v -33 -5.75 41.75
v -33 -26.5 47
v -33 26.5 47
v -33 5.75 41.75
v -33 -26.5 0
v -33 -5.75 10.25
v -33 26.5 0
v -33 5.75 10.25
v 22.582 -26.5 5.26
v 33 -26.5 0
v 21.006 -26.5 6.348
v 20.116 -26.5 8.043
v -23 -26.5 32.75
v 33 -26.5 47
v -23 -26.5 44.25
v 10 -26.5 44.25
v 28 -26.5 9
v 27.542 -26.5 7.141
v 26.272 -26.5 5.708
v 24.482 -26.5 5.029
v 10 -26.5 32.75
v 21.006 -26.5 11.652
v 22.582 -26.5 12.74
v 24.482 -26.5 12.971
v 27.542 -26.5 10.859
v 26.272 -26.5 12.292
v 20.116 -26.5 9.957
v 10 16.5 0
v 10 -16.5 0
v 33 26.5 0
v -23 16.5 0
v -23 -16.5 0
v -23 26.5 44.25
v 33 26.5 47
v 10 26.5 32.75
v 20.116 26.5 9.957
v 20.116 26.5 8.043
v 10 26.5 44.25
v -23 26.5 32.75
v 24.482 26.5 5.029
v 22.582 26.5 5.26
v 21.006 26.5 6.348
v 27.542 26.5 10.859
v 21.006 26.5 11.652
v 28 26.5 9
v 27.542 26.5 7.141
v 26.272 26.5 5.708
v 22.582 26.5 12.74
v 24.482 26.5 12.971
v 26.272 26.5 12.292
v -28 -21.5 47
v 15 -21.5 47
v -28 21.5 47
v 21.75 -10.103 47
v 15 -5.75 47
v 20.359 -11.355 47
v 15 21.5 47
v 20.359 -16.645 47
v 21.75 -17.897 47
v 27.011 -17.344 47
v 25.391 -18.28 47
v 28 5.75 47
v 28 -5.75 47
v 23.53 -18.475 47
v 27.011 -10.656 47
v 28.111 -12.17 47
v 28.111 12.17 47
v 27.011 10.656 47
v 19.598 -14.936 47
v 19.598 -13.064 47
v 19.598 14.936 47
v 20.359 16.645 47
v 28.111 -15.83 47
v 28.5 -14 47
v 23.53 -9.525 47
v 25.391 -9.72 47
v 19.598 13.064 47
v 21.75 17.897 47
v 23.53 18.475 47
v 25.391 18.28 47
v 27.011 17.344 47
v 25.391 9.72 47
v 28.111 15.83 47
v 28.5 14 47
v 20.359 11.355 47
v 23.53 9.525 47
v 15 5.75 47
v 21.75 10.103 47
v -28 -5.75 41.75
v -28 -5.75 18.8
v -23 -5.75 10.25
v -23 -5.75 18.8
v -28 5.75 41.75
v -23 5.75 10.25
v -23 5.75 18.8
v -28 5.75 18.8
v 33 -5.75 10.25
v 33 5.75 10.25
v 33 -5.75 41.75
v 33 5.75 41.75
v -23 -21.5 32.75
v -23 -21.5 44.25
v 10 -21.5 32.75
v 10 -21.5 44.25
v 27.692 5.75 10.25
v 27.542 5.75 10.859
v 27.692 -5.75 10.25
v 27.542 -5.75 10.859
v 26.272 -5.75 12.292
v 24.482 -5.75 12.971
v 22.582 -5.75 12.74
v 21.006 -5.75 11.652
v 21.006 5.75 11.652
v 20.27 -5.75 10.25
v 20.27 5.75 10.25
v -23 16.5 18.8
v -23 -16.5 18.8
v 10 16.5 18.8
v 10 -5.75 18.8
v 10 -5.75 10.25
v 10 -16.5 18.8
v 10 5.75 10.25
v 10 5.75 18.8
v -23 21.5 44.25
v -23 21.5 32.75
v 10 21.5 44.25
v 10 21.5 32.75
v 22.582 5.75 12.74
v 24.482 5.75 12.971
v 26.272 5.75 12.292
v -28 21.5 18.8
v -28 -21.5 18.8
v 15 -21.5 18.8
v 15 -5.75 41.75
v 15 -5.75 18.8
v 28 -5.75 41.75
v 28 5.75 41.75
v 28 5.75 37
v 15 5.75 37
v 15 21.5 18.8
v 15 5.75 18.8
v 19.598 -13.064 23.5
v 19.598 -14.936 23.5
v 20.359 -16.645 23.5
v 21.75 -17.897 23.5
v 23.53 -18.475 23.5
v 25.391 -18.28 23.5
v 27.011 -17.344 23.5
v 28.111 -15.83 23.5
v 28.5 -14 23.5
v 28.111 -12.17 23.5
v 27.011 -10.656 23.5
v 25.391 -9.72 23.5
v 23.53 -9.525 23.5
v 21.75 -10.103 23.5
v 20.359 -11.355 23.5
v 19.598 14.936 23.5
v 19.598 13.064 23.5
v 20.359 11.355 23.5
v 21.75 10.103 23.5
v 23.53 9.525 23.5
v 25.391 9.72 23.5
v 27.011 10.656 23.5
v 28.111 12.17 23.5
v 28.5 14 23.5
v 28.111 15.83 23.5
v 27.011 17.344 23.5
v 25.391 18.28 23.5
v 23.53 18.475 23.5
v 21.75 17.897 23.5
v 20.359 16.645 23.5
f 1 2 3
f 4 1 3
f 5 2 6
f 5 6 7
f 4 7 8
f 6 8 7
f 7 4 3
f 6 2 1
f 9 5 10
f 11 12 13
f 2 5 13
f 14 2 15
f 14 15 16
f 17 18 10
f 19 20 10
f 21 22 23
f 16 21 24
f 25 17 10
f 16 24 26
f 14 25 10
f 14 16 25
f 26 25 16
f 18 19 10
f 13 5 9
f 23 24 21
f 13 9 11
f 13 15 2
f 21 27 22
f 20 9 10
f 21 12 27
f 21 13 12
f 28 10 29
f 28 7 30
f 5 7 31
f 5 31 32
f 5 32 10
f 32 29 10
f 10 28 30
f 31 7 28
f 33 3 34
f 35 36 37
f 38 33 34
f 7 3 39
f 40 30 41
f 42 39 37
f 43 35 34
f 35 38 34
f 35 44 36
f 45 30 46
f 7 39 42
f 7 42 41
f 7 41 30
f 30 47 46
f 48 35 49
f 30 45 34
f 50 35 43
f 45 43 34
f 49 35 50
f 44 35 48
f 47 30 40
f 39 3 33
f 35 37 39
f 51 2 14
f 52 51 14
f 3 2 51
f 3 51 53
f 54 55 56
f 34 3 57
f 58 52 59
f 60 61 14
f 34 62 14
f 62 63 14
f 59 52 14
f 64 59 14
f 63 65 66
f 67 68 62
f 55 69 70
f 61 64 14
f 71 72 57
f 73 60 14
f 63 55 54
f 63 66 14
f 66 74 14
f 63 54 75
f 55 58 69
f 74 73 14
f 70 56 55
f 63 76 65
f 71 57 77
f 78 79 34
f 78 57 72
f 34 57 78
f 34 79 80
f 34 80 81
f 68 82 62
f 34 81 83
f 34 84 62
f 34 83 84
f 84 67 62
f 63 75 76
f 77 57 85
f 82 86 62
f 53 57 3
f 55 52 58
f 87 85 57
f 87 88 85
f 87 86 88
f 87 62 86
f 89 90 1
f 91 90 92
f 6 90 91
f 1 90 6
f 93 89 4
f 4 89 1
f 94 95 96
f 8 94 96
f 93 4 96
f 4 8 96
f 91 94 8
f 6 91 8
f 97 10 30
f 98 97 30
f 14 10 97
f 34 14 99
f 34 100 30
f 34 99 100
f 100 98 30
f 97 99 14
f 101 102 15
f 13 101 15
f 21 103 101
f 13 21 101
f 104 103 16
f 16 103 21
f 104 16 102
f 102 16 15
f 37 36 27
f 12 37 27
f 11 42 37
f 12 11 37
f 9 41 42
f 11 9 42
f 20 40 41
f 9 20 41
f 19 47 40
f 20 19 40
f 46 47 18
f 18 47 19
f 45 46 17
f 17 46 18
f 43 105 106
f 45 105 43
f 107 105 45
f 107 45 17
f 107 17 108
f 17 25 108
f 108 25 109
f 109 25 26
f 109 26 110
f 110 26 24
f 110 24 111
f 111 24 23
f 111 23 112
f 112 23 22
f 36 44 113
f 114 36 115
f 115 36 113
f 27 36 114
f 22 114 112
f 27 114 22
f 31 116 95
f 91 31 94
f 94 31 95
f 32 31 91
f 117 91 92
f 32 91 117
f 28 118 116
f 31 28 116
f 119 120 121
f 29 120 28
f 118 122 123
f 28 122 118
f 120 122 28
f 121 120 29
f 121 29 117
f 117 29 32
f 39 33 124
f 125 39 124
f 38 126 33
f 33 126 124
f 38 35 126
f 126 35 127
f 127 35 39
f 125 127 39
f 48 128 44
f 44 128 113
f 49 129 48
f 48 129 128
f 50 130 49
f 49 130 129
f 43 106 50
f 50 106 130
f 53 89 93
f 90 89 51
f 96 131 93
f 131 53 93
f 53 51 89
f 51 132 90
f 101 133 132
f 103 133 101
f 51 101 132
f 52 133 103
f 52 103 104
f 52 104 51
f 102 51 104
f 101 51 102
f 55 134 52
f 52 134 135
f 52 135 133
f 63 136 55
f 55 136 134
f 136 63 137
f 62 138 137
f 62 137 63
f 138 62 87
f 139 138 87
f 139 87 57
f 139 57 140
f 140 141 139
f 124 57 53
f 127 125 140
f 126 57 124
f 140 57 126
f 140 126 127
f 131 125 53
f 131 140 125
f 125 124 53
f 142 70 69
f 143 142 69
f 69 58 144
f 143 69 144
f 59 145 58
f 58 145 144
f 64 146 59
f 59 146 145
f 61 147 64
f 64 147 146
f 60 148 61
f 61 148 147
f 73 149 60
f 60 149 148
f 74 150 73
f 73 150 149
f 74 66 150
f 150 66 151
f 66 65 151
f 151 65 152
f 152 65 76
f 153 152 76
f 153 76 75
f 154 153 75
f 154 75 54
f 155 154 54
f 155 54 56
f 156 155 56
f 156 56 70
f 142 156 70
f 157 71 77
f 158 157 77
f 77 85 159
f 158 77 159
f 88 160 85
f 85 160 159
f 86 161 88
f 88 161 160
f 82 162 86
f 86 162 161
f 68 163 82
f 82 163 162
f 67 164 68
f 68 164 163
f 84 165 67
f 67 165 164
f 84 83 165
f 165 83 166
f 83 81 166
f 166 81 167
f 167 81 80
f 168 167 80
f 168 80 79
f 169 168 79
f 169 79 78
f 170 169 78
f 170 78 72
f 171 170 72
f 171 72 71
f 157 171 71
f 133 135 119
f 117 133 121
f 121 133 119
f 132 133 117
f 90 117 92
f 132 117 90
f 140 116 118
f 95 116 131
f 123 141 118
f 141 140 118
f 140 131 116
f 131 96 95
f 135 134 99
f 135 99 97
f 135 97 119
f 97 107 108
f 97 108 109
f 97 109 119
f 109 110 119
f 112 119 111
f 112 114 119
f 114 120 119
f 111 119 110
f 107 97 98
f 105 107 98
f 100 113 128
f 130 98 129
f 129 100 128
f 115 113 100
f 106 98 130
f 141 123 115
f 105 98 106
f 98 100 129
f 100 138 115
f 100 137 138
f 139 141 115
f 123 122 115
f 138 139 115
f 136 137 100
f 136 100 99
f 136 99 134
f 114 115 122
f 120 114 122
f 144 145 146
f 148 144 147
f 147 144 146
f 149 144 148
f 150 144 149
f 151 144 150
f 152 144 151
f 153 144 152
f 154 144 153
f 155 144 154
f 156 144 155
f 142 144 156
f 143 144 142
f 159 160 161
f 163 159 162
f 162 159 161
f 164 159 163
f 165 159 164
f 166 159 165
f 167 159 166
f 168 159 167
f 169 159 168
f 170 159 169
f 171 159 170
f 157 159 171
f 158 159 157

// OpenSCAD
// file: configuration.scad
// This is part of miPrint package
// GNU GPL version 3

print = 200;
wall = 5;
rod = 8;
minirod = 3;
motorw = 43;
motorh = 47;
inf = 500;
rail = 10; // outside
// main file
// miPrinter
// https://github.com/3DprintFIT/miPrinter
// Side holder
// GNU GPL v3
// Miro Hrončok

include <configuration.scad>

module side() {
	cubew=3*wall+motorw+rod;
	
	translate([0,0,motorh/2]) {
		difference() {
			cube([cubew,2*wall+motorw,motorh],center=true);
			translate([-wall/2-rod/2,0,motorh/2.5]) cube([motorw,motorw,motorh],center=true);
			translate([cubew/2-rod/2-wall,motorw/2-wall*1.5,0]) cylinder(r=rod/2+0.5,h=inf);
			translate([cubew/2-rod/2-wall,-(motorw/2-wall*1.5),0]) cylinder(r=rod/2+0.5,h=inf);
			translate([cubew/2-rod/2-wall,0,-motorh/2+wall+rod/2]) rotate([90,0,0]) cylinder(r=rod/2,h=inf,center=true);
			translate([-wall/2-rod/2,0,0]) cube([motorw-2*wall,motorw-2*wall,inf],center=true);
			translate([-wall/2-rod/2,0,wall*3]) cube([motorw-2*wall,inf,motorw/2-2*wall],center=true);
			translate([0,0,wall/2]) rotate([0,0,90]) cube([motorw/2-2*wall,inf,motorw/2+2*wall],center=true);
			translate([0,0,-wall+motorh/2]) cube([cubew-wall*2,motorw/2-2*wall,wall*2],center=true);
		}
	}
}

side();
